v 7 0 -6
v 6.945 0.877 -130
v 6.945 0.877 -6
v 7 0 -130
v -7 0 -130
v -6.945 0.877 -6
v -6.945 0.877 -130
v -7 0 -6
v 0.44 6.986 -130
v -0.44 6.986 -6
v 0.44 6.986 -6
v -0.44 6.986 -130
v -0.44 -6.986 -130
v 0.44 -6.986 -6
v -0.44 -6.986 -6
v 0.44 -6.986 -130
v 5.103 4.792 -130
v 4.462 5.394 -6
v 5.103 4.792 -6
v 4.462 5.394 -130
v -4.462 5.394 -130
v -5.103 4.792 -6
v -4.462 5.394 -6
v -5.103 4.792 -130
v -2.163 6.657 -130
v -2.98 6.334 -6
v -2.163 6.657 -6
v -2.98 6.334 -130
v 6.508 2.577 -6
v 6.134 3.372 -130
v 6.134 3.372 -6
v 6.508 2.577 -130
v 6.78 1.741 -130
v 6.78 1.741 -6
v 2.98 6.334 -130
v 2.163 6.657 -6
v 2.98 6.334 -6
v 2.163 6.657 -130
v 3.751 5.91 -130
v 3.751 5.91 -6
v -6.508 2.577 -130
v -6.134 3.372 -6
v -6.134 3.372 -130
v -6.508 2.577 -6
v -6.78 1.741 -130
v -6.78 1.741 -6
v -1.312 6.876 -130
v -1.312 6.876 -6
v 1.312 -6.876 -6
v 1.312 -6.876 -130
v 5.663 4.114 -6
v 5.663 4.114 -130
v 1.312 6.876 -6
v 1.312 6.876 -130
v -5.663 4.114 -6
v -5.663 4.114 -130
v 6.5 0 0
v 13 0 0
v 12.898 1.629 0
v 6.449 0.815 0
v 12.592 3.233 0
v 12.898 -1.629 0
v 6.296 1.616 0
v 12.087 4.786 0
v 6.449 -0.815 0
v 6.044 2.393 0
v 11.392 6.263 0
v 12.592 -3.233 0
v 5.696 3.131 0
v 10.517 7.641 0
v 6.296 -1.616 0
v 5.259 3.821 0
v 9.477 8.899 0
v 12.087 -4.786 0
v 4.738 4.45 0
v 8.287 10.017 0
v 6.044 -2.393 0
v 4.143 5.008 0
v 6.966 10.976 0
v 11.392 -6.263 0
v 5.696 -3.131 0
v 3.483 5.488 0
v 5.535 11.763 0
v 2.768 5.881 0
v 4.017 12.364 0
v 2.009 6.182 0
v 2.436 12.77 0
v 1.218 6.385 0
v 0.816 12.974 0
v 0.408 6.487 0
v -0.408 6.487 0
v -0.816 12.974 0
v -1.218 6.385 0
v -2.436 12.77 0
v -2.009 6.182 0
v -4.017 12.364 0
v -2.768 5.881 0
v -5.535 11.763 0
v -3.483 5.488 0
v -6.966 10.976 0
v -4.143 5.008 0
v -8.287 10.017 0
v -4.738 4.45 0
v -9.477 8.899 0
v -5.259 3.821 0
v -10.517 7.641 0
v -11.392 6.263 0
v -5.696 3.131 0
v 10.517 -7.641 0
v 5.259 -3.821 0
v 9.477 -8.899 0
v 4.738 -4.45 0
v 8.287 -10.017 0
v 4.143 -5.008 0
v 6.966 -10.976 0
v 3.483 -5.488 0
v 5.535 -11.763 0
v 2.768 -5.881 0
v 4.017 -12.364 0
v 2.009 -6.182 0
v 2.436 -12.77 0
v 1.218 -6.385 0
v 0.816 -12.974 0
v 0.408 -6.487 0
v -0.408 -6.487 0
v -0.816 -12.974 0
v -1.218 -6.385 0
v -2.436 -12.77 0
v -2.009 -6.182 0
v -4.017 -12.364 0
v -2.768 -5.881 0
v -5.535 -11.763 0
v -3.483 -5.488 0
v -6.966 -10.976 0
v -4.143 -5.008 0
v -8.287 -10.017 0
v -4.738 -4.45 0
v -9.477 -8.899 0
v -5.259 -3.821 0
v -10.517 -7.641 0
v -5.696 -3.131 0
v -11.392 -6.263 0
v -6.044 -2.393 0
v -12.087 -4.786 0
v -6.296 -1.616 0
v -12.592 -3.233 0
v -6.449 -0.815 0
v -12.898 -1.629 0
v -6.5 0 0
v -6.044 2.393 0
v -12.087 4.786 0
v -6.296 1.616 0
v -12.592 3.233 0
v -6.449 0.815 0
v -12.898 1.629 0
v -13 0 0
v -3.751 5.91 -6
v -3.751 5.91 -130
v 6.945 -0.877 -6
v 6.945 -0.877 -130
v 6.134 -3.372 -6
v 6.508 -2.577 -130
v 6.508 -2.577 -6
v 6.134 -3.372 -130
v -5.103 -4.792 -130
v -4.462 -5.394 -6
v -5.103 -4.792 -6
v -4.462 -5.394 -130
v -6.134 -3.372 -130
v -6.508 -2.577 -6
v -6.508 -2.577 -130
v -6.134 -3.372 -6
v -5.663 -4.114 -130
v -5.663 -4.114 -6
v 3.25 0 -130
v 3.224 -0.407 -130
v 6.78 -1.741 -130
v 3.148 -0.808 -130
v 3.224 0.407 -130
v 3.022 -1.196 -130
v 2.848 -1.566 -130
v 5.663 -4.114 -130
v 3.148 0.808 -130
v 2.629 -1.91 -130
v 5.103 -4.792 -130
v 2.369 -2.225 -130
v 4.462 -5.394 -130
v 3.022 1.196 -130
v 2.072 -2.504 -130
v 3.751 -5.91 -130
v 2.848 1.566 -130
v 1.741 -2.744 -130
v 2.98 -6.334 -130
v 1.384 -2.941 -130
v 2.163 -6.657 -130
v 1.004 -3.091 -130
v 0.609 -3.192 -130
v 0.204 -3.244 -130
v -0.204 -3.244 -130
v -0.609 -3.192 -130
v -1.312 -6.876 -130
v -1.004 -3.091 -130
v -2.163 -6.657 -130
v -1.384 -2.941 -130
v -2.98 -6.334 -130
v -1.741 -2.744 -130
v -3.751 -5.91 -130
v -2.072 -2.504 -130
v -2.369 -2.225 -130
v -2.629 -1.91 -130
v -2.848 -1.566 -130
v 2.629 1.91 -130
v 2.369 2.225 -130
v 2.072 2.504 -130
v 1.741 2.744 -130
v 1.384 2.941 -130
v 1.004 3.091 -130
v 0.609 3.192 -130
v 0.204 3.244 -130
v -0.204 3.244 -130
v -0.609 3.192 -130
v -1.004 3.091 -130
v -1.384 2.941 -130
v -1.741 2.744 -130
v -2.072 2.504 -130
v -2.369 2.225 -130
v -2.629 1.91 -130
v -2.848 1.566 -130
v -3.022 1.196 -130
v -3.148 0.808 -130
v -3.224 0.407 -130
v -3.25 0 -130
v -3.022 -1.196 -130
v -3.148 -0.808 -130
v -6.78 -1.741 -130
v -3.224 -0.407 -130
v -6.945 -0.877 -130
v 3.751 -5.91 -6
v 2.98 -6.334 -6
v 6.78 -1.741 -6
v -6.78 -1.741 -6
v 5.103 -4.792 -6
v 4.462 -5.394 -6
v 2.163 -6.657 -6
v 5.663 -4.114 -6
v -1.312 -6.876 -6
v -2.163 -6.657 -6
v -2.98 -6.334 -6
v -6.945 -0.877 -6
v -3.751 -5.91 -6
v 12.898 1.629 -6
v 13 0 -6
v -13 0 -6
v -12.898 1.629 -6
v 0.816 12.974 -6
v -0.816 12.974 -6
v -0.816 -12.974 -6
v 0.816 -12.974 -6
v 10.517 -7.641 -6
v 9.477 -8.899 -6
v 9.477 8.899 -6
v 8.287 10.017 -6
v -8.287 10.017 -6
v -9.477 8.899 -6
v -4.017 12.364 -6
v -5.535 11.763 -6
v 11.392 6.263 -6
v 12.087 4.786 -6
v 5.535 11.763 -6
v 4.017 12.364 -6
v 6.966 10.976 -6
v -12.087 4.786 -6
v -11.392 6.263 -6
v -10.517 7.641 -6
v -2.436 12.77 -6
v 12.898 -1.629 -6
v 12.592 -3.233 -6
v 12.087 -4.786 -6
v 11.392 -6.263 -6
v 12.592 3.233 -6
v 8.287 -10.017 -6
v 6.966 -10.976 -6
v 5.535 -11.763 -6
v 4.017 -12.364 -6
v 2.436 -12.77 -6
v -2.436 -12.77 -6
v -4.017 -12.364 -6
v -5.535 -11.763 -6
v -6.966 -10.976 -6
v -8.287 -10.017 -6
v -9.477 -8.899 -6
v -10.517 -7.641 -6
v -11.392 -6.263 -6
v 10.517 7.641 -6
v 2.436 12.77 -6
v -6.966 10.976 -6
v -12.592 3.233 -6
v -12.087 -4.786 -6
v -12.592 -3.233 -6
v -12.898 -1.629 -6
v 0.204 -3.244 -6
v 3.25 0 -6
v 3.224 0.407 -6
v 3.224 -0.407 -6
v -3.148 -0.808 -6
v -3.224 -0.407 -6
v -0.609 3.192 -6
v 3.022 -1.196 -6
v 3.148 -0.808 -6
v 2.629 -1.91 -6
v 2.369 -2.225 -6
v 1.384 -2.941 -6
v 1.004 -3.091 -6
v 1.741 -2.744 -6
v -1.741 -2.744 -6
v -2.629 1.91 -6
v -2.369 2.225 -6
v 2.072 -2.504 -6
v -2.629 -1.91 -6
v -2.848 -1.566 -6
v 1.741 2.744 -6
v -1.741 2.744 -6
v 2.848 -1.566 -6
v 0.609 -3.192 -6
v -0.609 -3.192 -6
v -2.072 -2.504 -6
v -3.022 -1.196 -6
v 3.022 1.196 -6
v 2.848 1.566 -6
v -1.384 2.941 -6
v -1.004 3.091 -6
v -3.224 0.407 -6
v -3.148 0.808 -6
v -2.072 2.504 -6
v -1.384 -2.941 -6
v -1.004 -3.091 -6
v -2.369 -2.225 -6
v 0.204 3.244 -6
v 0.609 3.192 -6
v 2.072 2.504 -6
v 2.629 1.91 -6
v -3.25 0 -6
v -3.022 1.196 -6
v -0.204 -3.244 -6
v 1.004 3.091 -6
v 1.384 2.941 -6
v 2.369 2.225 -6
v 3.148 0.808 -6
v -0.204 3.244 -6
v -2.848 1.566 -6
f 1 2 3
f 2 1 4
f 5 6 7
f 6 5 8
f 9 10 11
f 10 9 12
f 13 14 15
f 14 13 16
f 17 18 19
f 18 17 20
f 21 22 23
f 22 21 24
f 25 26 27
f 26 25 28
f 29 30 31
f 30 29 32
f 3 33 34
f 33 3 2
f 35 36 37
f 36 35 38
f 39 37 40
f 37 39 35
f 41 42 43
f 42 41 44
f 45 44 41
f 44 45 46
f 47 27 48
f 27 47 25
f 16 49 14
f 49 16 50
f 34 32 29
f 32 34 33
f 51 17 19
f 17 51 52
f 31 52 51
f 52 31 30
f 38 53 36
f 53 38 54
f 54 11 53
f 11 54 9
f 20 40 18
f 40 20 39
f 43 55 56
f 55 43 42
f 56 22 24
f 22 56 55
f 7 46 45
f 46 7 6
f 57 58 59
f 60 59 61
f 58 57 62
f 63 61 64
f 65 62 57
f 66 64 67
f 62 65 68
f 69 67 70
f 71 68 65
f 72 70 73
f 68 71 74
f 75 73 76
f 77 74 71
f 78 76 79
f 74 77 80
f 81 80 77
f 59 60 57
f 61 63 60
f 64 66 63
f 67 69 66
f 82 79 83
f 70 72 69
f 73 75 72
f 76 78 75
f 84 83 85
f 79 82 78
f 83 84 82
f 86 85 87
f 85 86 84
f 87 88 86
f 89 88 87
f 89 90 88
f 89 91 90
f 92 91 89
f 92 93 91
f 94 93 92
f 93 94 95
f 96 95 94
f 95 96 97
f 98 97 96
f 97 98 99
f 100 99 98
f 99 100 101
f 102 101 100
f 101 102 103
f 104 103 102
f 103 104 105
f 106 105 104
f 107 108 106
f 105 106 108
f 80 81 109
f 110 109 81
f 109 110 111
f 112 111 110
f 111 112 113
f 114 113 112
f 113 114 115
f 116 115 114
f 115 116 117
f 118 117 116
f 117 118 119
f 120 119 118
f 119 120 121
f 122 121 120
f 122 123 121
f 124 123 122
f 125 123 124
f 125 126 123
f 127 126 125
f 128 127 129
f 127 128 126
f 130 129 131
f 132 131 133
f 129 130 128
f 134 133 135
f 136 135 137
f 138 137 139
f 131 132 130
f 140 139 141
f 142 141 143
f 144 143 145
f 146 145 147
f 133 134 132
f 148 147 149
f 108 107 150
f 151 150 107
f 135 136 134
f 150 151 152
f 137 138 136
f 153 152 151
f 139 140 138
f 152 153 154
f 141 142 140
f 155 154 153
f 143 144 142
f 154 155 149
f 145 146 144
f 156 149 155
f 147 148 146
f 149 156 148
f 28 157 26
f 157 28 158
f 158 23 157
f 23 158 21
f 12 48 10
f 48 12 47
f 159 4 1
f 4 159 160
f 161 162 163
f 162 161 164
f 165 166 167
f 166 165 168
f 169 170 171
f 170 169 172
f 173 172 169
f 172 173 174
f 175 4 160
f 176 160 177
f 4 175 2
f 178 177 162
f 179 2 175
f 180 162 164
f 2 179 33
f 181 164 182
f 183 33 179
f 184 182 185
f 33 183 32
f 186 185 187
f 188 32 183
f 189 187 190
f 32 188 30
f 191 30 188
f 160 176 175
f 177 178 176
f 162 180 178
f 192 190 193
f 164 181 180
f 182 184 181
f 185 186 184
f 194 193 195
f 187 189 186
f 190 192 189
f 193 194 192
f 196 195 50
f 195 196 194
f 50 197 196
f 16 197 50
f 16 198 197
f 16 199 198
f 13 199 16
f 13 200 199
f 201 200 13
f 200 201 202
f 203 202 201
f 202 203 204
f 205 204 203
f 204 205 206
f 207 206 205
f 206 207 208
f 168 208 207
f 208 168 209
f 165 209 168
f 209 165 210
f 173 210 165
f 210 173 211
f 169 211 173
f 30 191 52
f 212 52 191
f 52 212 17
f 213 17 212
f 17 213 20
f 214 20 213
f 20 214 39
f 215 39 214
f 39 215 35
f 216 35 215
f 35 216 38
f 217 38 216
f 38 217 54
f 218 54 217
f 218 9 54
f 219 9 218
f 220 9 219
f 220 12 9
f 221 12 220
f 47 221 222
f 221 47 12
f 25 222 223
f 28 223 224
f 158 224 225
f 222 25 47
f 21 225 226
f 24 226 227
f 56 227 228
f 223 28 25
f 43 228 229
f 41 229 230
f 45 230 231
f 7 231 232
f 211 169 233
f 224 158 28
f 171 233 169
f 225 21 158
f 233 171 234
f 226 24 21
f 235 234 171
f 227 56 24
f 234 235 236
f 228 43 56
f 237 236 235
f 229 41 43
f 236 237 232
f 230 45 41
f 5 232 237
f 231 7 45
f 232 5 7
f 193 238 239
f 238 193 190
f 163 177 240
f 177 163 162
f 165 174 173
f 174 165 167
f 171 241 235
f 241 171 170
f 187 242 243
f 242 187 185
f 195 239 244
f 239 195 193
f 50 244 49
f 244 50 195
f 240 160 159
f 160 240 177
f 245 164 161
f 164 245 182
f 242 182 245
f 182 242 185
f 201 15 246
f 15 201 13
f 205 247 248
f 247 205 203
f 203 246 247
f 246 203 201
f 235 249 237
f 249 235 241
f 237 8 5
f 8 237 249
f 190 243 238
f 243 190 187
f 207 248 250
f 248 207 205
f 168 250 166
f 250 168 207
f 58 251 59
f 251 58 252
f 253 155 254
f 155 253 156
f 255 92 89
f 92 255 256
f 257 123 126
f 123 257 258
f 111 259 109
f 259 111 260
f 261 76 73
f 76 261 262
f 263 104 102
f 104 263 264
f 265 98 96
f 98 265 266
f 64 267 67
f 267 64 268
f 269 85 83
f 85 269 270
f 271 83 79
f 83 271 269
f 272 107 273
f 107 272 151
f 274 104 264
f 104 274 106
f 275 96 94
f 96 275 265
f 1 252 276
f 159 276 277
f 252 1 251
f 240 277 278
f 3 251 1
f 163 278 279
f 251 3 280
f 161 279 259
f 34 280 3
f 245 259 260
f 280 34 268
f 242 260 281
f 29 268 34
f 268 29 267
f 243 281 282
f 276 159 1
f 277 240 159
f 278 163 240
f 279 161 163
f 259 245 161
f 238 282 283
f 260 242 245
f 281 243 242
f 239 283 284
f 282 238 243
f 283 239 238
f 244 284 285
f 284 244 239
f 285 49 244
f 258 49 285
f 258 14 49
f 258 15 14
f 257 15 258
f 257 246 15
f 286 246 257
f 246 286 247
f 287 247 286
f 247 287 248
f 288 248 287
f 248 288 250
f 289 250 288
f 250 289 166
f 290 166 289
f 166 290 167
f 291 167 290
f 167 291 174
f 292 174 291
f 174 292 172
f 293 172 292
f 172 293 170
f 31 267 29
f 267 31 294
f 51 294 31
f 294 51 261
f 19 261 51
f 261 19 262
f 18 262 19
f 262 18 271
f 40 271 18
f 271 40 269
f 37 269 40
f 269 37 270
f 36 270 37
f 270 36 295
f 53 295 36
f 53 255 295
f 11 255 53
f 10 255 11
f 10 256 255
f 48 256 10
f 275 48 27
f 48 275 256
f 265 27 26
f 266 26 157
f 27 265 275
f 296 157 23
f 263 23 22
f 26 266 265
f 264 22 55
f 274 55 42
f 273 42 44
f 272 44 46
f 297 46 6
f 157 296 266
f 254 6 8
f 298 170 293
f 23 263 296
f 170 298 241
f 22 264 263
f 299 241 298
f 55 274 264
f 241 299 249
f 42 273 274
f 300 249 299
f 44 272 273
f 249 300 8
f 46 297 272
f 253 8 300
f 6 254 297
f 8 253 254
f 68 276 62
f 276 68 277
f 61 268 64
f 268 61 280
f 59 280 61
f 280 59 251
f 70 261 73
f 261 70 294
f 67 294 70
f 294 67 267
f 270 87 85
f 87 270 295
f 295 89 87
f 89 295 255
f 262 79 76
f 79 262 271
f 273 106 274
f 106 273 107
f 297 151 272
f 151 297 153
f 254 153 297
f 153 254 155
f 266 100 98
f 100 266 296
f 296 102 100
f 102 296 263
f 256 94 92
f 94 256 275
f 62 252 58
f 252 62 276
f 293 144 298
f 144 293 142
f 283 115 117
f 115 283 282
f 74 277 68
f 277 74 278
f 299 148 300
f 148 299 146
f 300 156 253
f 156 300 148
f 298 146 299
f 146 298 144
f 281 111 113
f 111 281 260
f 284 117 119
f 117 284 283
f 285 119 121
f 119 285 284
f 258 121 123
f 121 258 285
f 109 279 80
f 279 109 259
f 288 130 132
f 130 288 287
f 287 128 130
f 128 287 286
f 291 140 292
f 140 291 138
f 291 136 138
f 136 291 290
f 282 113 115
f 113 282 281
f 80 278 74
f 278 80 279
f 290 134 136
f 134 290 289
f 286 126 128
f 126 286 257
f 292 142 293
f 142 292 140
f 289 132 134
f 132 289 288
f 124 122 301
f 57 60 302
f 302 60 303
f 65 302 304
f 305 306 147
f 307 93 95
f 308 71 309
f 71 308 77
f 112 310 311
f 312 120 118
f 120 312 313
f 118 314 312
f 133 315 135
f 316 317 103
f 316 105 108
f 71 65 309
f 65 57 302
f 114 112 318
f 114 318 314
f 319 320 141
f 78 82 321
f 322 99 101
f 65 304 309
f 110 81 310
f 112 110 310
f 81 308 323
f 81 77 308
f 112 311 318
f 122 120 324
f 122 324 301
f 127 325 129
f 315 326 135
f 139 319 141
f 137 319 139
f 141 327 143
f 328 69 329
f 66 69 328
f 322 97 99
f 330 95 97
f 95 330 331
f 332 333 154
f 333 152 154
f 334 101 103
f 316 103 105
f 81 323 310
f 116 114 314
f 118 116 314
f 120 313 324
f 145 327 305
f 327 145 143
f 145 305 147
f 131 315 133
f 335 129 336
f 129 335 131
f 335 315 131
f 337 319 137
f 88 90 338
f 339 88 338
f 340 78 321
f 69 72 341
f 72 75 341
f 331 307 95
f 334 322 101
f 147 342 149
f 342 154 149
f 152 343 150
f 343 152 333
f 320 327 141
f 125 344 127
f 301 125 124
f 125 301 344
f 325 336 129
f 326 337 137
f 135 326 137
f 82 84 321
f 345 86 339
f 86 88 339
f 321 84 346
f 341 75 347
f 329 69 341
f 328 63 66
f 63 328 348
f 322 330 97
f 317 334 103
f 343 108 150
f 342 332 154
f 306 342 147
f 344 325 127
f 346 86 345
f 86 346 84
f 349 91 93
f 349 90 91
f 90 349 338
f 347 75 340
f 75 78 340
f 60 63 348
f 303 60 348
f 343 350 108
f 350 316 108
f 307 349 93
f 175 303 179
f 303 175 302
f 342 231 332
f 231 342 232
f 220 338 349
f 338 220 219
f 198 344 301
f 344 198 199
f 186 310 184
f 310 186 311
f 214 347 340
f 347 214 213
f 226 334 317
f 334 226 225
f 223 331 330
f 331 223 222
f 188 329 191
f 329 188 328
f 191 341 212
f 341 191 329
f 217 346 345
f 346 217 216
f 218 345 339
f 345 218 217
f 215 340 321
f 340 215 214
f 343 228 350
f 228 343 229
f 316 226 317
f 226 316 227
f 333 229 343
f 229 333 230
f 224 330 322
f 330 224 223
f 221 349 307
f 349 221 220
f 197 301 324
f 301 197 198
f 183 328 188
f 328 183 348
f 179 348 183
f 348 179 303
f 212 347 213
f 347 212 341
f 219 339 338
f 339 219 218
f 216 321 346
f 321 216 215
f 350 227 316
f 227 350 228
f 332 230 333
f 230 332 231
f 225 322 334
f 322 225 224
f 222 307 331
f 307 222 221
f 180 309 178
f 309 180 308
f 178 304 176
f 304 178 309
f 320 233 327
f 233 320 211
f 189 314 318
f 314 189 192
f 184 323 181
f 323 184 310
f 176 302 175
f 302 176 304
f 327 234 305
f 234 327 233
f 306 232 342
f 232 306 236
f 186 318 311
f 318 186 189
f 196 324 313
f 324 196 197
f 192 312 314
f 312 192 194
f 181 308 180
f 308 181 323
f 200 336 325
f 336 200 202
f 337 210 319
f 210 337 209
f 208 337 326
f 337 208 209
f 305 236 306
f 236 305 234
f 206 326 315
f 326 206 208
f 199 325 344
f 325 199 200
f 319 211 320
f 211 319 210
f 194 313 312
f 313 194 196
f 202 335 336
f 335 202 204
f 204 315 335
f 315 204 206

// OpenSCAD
$fn = 50;


difference() {
	union() {
		translate(v = [0, 0, -130.0000000000]) {
			cylinder(h = 130, r = 7.0000000000);
		}
		translate(v = [0, 0, -6.0000000000]) {
			cylinder(h = 6, r = 13.0000000000);
		}
	}
	union() {
		translate(v = [0, 0, 0]) {
			rotate(a = [0, 0, 0]) {
				difference() {
					union() {
						#translate(v = [0, 0, -130.0000000000]) {
							cylinder(h = 130, r = 2.2500000000);
						}
						#translate(v = [0, 0, -6]) {
							cylinder(h = 6, r1 = 3.2500000000, r2 = 6.5000000000);
						}
						#translate(v = [0, 0, -130.0000000000]) {
							cylinder(h = 130, r = 3.2500000000);
						}
						#translate(v = [0, 0, -130.0000000000]) {
							cylinder(h = 130, r = 2.2500000000);
						}
					}
					union();
				}
			}
		}
	}
}
